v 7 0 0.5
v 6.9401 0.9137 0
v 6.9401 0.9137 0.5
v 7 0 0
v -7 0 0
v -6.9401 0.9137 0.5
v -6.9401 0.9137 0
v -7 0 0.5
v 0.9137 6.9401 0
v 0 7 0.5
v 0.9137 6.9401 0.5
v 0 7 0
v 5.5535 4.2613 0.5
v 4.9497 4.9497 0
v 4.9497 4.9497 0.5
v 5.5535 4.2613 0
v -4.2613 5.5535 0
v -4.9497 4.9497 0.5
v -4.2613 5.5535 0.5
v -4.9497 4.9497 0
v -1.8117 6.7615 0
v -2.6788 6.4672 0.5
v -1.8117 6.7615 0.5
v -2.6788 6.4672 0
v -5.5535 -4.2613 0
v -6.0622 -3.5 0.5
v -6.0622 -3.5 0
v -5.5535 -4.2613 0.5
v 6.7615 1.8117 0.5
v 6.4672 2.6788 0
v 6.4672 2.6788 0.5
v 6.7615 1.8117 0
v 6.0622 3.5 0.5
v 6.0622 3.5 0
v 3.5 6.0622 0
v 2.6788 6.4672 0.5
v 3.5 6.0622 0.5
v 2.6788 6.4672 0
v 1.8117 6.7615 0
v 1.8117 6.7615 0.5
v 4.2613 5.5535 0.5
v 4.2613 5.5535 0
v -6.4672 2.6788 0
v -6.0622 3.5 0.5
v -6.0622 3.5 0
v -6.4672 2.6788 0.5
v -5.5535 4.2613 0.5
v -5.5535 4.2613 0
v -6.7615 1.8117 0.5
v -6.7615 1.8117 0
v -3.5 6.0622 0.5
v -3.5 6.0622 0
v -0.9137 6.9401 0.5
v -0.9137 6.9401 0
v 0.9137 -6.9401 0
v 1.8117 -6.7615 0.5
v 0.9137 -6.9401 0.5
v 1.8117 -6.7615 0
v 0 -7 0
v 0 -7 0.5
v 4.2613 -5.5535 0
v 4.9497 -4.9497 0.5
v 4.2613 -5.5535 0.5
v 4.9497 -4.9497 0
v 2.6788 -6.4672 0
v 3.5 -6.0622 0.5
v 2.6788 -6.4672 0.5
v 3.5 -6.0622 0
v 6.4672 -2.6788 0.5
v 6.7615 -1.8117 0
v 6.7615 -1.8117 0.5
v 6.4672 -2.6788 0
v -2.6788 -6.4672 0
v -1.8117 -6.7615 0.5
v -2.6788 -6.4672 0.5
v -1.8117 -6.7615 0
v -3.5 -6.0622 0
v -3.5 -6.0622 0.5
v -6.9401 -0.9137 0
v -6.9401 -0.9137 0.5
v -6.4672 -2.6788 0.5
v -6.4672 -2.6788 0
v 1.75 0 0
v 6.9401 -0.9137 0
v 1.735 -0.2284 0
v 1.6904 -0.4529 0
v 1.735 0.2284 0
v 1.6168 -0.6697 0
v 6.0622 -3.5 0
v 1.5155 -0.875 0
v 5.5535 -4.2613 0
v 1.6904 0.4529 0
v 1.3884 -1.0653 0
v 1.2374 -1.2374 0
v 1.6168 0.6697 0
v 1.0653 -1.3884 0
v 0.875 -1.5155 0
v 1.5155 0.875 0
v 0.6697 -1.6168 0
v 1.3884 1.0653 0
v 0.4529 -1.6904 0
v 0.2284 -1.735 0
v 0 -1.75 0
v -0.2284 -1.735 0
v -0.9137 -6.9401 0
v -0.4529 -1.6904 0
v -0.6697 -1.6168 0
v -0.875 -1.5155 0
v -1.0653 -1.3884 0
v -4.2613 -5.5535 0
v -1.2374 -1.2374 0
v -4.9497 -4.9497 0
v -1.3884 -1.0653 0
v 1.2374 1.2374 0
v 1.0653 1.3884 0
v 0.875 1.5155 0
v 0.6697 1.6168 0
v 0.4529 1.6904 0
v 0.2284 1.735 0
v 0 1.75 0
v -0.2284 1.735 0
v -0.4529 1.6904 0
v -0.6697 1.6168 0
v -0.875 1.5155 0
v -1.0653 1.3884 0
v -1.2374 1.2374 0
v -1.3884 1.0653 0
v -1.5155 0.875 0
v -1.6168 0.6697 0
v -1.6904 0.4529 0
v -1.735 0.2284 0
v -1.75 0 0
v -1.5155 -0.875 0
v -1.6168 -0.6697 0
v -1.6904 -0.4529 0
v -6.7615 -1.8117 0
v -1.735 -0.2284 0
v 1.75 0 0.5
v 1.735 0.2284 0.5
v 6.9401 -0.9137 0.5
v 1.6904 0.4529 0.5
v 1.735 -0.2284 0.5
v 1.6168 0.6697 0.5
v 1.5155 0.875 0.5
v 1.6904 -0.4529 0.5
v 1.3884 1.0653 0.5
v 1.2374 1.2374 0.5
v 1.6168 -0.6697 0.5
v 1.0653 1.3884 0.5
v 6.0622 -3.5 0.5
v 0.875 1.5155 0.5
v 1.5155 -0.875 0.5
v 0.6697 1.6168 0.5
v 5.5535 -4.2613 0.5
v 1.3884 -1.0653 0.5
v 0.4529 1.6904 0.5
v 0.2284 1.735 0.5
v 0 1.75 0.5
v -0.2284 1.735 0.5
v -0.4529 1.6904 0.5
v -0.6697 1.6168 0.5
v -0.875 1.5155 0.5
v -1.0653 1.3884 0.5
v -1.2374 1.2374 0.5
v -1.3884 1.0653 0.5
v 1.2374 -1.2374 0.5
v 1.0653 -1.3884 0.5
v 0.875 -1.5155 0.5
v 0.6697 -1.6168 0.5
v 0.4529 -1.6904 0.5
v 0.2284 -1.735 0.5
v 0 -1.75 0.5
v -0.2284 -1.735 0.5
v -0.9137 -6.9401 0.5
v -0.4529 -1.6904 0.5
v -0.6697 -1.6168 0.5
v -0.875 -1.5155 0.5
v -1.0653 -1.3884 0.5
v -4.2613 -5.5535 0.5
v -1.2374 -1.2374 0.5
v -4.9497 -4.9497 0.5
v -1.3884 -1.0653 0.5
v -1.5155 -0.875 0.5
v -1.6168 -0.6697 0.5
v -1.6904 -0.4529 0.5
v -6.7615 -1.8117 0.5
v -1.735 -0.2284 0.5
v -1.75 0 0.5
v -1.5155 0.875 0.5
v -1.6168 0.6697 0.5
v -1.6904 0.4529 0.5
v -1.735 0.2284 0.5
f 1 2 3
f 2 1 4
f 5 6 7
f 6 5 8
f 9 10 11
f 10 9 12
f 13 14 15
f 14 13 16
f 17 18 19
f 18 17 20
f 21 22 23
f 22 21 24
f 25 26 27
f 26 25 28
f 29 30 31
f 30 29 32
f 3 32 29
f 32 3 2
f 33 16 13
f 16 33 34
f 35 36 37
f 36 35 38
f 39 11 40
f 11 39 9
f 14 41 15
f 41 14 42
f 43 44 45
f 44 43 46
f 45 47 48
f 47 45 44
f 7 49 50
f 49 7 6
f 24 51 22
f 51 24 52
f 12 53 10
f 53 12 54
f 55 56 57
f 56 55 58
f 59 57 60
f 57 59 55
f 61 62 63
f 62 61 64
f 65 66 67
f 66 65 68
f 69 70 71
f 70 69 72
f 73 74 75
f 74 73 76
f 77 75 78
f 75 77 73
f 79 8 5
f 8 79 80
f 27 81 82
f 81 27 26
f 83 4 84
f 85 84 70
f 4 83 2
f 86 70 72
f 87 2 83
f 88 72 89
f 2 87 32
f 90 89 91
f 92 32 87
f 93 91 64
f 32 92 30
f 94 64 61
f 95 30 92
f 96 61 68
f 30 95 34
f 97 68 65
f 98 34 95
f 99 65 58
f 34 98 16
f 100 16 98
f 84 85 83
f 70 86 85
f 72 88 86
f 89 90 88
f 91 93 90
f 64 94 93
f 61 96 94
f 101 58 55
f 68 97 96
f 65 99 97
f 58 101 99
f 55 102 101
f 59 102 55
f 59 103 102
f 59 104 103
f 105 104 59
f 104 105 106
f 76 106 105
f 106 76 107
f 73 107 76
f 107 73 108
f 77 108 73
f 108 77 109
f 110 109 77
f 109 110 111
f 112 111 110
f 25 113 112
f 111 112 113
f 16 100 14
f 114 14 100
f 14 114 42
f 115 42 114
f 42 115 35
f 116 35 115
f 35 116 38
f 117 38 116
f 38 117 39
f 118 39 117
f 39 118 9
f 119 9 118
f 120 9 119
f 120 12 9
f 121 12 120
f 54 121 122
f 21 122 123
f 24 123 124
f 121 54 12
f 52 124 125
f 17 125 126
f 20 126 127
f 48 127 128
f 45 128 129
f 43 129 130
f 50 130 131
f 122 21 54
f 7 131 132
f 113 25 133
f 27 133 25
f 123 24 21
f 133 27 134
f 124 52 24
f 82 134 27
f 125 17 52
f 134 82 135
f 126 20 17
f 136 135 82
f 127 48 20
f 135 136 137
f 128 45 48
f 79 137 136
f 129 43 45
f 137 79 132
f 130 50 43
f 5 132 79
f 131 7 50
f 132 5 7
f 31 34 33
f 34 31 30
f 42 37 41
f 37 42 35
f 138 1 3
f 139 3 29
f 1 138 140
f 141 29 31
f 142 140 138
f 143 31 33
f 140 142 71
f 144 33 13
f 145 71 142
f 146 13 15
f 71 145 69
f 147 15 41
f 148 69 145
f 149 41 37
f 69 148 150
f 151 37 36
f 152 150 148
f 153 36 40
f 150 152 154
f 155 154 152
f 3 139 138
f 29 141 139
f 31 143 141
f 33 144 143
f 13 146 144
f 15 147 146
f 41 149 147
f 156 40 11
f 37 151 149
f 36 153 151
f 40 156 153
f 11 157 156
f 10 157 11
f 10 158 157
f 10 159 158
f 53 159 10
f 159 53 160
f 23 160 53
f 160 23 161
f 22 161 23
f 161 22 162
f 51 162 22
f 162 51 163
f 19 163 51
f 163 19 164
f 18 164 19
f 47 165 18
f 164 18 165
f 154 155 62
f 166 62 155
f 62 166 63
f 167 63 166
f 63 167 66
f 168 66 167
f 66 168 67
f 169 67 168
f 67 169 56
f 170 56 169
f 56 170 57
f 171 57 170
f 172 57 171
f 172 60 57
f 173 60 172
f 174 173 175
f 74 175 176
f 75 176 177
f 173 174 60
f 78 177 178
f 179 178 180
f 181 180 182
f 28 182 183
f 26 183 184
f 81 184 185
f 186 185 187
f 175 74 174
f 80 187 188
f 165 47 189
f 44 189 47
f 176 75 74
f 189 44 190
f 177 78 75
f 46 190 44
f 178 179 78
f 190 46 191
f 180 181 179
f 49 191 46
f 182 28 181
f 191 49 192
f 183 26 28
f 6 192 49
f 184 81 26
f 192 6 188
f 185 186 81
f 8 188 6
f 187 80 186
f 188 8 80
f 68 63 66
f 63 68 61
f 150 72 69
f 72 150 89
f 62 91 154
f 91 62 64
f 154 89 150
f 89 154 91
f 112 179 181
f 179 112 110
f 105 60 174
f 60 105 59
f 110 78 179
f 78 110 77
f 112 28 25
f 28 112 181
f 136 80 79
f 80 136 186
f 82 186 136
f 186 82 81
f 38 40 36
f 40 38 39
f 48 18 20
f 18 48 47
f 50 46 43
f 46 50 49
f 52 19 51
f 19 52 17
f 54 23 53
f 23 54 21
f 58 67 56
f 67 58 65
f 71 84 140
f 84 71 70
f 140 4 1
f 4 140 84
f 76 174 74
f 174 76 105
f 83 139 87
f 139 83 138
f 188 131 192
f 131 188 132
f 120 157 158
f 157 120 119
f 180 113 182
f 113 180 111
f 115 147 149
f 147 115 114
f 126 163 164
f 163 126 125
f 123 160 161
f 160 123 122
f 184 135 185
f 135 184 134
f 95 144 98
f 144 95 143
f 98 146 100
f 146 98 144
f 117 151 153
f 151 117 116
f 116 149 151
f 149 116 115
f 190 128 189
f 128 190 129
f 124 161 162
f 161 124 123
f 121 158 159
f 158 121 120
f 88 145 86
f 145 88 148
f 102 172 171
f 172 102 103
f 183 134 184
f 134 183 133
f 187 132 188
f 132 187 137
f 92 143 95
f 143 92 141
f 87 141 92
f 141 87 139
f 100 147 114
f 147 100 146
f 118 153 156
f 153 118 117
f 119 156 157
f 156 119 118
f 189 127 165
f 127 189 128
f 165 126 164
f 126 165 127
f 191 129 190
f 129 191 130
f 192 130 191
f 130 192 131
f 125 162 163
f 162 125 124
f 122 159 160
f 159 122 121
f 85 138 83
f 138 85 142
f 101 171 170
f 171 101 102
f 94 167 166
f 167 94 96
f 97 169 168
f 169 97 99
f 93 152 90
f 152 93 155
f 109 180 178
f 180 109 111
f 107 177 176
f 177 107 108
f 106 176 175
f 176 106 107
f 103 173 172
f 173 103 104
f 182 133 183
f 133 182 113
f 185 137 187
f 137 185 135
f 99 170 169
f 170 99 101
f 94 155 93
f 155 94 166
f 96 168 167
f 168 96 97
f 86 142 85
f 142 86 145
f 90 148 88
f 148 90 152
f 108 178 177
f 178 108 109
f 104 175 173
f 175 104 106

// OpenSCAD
// Gen-DT — assembly gap shim, h = run_clear (rotor face -> flange); copper is inside the flanges
include <parameters.scad>;
$fn = 48;
difference() {
    cylinder(d=spacer_pad_od, h=gap_spacer_h);
    translate([0, 0, -0.1]) cylinder(d=spacer_pad_id, h=gap_spacer_h + 0.2);
}
